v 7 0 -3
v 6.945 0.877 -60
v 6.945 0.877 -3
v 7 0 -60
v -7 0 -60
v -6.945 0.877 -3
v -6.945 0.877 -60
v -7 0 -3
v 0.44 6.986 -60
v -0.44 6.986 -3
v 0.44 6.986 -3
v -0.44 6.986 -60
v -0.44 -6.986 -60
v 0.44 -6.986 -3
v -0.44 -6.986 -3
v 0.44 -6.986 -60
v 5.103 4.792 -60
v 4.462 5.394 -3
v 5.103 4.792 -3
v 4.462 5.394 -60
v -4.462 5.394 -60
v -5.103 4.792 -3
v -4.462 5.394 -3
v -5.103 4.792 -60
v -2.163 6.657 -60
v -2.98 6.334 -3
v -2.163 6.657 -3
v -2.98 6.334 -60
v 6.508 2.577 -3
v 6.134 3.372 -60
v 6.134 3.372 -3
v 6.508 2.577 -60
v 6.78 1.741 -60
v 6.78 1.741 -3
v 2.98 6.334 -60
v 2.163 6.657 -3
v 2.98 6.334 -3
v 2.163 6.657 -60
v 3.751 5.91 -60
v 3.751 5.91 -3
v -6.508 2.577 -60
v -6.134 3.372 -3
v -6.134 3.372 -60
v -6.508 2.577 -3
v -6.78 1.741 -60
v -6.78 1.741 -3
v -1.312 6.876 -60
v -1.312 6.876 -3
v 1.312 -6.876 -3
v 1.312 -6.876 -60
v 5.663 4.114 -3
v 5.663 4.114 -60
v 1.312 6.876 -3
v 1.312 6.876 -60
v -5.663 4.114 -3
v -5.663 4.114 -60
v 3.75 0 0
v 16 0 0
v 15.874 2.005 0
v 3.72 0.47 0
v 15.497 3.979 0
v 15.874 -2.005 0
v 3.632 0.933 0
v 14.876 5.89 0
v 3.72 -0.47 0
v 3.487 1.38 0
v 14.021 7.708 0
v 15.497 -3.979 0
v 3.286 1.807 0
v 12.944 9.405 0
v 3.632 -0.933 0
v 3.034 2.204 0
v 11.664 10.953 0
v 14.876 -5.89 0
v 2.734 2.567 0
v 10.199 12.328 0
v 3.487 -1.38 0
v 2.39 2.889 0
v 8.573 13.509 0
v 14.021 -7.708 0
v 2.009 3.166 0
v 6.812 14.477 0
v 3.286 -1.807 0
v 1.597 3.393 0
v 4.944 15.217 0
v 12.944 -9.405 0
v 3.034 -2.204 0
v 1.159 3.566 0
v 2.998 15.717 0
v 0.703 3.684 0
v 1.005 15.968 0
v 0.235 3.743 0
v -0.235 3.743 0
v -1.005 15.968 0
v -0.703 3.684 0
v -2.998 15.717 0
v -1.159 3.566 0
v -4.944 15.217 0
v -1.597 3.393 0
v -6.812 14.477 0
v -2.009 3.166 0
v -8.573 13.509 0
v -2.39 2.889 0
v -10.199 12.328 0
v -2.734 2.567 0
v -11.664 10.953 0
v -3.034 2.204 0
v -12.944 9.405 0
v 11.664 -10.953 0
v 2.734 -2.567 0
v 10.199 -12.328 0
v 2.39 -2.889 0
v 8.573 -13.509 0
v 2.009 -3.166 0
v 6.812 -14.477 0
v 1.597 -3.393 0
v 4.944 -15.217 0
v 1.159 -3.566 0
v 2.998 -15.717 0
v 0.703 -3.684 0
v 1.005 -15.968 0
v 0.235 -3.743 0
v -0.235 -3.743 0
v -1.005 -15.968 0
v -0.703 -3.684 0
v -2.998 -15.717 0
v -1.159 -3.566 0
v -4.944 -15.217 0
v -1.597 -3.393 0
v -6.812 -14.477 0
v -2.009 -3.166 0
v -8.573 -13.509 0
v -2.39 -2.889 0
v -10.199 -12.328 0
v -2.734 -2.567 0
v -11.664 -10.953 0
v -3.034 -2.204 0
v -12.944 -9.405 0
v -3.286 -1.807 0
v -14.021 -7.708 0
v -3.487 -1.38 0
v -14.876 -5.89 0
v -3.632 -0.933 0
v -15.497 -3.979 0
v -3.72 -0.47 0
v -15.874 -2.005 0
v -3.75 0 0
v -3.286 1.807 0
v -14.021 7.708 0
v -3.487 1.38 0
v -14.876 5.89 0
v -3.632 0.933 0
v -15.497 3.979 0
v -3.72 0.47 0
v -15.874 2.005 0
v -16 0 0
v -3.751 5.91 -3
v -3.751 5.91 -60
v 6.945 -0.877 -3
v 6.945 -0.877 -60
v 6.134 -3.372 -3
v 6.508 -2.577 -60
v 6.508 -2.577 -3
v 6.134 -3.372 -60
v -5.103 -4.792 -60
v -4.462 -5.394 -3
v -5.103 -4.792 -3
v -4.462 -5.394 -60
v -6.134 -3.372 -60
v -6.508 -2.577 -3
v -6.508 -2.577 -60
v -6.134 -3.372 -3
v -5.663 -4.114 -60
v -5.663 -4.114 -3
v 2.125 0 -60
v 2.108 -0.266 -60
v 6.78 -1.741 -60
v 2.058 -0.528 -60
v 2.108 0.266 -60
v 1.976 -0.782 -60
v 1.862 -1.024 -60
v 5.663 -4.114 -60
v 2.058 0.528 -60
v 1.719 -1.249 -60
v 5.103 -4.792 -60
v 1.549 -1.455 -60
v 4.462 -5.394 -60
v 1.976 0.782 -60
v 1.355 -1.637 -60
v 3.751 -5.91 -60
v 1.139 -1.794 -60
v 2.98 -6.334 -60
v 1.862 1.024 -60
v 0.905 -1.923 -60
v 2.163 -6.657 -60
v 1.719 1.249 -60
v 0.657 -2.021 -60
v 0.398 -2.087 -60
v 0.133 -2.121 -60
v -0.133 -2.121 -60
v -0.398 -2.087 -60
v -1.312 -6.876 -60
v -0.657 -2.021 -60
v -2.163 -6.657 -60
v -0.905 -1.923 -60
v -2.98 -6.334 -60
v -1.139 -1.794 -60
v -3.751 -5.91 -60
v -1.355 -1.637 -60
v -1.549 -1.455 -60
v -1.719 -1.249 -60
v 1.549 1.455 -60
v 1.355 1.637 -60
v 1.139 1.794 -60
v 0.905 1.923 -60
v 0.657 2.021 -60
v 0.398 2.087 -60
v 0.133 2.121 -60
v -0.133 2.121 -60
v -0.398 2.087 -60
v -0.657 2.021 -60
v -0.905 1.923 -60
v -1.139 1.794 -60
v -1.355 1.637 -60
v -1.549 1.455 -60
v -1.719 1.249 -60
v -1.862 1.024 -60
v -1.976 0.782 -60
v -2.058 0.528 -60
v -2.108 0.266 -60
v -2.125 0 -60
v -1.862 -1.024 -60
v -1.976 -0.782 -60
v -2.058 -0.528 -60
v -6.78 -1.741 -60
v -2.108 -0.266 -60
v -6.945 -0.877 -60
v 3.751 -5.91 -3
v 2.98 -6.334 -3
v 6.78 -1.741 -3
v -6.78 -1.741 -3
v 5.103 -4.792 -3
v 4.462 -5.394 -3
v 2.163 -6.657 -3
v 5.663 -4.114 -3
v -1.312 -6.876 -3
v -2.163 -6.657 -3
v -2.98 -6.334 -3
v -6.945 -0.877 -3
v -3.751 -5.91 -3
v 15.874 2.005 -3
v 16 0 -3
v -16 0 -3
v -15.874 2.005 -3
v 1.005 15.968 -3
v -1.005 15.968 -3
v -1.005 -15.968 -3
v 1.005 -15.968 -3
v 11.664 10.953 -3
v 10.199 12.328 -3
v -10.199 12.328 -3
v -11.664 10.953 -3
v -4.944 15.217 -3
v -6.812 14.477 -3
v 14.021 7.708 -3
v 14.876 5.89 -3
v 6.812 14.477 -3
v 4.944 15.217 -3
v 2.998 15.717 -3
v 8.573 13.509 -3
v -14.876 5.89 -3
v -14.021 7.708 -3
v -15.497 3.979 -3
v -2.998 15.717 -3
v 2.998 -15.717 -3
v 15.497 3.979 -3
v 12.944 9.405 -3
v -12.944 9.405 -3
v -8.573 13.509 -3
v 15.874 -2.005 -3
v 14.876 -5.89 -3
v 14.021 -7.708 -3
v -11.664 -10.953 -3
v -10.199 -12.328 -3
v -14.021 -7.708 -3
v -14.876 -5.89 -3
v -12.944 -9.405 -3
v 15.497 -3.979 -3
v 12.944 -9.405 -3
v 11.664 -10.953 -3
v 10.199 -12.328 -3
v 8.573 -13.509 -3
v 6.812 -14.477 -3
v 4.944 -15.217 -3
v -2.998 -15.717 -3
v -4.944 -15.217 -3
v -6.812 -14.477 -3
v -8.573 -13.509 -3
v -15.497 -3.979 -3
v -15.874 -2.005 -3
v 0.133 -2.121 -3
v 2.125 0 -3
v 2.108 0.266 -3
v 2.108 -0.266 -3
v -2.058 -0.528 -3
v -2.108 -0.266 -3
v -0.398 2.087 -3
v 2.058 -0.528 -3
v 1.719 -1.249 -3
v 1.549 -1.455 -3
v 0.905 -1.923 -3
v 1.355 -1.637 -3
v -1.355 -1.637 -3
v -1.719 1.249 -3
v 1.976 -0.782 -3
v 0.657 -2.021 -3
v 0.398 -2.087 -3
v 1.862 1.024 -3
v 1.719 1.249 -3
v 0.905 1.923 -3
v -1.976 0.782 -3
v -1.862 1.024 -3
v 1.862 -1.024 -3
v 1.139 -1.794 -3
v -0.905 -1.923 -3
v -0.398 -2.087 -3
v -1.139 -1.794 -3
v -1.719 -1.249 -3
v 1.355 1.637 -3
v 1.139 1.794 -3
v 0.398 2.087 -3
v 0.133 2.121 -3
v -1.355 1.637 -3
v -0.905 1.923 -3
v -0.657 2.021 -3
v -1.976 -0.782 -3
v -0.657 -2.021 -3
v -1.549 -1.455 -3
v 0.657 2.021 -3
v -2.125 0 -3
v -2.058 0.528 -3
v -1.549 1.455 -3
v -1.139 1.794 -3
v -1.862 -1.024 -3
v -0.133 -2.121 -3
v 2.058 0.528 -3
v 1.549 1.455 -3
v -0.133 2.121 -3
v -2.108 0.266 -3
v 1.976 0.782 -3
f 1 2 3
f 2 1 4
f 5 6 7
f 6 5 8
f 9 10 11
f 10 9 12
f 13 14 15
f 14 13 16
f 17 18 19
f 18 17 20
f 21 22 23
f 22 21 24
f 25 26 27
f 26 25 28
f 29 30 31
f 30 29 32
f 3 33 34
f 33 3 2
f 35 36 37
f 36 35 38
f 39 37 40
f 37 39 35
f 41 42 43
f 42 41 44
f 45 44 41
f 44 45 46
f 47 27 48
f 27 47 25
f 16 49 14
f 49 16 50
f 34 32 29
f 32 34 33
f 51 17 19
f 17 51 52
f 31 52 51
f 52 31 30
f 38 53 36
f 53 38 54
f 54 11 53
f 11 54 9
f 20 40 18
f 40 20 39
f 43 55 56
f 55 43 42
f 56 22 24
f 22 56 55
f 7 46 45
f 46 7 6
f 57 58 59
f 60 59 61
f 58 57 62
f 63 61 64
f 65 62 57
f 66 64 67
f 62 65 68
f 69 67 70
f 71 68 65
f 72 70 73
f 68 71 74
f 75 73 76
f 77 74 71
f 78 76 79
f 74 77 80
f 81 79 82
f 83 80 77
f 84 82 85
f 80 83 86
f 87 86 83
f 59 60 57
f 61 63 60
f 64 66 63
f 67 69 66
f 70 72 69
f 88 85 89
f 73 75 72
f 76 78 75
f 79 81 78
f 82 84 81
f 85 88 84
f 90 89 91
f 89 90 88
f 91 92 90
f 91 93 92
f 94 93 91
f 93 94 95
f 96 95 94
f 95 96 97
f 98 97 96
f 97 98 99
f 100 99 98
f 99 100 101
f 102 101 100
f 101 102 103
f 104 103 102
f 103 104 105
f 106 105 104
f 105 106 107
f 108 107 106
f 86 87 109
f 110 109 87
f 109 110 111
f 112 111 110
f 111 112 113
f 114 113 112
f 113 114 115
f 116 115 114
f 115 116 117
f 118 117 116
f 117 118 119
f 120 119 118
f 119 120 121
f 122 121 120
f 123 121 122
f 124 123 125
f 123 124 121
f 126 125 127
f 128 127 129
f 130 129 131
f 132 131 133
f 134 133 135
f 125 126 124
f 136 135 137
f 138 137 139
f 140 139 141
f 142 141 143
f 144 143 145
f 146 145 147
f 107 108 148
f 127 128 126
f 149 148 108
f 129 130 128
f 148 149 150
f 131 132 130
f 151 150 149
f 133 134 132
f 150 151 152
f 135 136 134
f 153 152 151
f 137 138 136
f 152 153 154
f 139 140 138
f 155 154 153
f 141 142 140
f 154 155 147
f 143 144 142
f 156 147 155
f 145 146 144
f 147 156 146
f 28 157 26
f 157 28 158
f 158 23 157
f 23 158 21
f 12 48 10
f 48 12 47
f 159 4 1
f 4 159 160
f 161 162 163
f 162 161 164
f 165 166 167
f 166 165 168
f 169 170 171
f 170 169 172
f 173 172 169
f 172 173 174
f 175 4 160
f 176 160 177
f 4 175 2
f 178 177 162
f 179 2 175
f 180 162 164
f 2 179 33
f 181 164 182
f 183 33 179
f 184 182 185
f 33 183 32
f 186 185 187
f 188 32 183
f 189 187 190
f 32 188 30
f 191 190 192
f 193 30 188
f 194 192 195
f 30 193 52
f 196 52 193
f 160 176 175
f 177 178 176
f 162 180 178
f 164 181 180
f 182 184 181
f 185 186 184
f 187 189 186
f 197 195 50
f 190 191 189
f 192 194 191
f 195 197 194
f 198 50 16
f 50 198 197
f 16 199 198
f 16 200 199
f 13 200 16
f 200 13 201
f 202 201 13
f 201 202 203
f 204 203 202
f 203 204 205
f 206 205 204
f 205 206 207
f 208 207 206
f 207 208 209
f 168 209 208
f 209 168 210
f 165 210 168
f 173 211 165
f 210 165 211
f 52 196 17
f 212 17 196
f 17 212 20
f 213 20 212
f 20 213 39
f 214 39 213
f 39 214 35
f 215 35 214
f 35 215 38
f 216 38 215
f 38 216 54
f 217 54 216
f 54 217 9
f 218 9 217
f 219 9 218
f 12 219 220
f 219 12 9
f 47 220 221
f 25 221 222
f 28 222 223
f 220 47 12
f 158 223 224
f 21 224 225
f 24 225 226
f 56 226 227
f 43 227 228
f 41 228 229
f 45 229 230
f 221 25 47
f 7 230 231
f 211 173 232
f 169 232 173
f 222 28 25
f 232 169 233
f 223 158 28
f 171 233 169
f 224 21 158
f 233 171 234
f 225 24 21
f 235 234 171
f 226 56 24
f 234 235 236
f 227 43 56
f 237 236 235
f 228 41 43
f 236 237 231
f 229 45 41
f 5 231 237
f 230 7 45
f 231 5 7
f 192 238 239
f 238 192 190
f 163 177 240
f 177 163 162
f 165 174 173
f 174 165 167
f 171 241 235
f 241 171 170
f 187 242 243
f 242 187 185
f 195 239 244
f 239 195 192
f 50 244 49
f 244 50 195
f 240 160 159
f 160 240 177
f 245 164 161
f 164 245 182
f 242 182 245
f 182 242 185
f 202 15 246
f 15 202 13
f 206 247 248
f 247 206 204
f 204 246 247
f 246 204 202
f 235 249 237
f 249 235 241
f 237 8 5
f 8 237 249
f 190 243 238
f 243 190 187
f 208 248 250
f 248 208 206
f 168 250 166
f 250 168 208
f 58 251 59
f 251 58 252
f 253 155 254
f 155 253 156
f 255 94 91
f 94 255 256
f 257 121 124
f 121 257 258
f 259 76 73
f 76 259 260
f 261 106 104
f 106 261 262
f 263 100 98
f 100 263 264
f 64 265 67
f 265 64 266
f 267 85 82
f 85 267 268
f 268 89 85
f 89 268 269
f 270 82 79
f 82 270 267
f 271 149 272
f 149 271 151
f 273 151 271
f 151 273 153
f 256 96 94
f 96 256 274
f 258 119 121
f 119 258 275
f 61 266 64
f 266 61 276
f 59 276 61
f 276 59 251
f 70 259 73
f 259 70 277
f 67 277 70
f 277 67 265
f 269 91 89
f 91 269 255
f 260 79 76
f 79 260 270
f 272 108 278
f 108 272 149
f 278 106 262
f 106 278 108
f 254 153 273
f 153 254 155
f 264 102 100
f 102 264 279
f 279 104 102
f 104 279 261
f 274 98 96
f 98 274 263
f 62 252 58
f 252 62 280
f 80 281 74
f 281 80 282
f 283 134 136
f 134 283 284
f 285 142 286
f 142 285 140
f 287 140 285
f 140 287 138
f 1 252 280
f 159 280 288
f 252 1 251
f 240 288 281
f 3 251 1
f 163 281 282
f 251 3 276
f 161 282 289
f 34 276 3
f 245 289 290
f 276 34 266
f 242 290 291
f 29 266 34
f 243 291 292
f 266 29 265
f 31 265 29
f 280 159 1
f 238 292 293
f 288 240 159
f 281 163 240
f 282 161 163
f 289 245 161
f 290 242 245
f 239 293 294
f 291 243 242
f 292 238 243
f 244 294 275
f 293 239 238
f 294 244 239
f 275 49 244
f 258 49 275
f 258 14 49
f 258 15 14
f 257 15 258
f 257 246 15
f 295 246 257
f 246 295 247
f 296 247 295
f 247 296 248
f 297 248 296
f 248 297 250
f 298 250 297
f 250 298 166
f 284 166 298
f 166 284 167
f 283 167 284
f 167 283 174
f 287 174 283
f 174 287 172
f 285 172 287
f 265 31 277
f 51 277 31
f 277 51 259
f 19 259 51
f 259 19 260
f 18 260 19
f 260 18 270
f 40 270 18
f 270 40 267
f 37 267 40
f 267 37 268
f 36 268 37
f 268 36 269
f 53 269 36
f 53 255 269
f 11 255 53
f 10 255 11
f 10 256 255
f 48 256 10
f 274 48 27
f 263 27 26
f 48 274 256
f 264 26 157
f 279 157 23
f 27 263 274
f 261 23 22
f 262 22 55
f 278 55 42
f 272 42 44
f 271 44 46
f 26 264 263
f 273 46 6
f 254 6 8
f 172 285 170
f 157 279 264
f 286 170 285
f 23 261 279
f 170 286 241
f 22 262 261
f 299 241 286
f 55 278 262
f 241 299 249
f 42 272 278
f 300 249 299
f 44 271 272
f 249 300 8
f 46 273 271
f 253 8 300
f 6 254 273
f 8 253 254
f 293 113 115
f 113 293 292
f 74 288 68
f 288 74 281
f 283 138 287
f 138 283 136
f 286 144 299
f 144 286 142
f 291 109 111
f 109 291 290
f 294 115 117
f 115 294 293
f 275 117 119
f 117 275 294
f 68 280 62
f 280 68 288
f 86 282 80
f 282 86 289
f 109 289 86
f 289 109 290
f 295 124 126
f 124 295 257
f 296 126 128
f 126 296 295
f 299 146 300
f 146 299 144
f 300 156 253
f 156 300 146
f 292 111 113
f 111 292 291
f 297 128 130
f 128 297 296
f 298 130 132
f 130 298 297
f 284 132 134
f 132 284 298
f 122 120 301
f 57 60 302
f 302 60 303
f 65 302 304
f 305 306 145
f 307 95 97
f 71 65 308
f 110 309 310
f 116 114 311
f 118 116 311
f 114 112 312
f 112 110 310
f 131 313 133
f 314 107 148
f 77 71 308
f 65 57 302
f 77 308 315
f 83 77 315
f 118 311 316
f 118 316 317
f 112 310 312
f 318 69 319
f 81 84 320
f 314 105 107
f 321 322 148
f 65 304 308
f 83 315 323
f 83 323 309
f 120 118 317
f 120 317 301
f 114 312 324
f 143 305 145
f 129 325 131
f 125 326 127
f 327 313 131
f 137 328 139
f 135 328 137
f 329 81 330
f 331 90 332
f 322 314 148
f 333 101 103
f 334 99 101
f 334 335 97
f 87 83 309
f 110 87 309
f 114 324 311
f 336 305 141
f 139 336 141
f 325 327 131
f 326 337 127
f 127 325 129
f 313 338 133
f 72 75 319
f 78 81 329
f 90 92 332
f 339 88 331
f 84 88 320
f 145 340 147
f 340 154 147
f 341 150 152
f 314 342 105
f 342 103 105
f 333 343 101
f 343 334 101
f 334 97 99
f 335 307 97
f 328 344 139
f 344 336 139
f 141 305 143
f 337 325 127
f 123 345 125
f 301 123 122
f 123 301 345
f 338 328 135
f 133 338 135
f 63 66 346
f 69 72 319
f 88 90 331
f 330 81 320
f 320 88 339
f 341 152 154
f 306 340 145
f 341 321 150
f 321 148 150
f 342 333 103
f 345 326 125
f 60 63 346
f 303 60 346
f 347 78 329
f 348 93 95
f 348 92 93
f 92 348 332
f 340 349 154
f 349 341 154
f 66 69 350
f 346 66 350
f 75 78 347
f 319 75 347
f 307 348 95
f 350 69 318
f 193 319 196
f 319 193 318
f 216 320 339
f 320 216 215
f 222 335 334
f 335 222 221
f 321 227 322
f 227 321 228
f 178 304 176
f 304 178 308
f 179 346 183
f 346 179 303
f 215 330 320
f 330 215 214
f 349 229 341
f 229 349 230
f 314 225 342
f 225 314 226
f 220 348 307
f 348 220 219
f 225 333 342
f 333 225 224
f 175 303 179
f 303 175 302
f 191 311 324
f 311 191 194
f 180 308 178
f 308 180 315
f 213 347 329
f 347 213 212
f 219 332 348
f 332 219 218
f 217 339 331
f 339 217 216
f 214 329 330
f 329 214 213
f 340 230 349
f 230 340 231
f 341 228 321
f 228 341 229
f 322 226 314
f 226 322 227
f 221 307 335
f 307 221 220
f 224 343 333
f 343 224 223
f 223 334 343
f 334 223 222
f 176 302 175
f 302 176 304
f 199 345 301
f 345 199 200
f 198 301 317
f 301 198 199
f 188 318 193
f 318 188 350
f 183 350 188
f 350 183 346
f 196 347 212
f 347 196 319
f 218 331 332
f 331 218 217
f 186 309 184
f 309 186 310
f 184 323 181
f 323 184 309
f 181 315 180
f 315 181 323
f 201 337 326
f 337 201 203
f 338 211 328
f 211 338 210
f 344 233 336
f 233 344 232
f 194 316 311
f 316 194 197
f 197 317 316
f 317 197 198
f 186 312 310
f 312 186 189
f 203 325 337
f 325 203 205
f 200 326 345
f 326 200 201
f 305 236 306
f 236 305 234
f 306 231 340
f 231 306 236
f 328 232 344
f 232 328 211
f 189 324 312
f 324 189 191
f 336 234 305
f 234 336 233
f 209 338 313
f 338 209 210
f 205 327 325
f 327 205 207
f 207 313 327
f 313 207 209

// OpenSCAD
$fn = 50;


difference() {
	union() {
		translate(v = [0, 0, -60.0000000000]) {
			cylinder(h = 60, r = 7.0000000000);
		}
		translate(v = [0, 0, -3.0000000000]) {
			cylinder(h = 3, r = 16.0000000000);
		}
	}
	union() {
		translate(v = [0, 0, 0]) {
			rotate(a = [0, 0, 0]) {
				difference() {
					union() {
						#translate(v = [0, 0, -60.0000000000]) {
							cylinder(h = 60, r = 2.0000000000);
						}
						#translate(v = [0, 0, -3]) {
							cylinder(h = 3, r = 7.0000000000, r1 = 2.1250000000, r2 = 3.7500000000);
						}
						#translate(v = [0, 0, -60.0000000000]) {
							cylinder(h = 60, r = 2.1250000000);
						}
						#translate(v = [0, 0, -60.0000000000]) {
							cylinder(h = 60, r = 2.0000000000);
						}
					}
					union();
				}
			}
		}
	}
}
